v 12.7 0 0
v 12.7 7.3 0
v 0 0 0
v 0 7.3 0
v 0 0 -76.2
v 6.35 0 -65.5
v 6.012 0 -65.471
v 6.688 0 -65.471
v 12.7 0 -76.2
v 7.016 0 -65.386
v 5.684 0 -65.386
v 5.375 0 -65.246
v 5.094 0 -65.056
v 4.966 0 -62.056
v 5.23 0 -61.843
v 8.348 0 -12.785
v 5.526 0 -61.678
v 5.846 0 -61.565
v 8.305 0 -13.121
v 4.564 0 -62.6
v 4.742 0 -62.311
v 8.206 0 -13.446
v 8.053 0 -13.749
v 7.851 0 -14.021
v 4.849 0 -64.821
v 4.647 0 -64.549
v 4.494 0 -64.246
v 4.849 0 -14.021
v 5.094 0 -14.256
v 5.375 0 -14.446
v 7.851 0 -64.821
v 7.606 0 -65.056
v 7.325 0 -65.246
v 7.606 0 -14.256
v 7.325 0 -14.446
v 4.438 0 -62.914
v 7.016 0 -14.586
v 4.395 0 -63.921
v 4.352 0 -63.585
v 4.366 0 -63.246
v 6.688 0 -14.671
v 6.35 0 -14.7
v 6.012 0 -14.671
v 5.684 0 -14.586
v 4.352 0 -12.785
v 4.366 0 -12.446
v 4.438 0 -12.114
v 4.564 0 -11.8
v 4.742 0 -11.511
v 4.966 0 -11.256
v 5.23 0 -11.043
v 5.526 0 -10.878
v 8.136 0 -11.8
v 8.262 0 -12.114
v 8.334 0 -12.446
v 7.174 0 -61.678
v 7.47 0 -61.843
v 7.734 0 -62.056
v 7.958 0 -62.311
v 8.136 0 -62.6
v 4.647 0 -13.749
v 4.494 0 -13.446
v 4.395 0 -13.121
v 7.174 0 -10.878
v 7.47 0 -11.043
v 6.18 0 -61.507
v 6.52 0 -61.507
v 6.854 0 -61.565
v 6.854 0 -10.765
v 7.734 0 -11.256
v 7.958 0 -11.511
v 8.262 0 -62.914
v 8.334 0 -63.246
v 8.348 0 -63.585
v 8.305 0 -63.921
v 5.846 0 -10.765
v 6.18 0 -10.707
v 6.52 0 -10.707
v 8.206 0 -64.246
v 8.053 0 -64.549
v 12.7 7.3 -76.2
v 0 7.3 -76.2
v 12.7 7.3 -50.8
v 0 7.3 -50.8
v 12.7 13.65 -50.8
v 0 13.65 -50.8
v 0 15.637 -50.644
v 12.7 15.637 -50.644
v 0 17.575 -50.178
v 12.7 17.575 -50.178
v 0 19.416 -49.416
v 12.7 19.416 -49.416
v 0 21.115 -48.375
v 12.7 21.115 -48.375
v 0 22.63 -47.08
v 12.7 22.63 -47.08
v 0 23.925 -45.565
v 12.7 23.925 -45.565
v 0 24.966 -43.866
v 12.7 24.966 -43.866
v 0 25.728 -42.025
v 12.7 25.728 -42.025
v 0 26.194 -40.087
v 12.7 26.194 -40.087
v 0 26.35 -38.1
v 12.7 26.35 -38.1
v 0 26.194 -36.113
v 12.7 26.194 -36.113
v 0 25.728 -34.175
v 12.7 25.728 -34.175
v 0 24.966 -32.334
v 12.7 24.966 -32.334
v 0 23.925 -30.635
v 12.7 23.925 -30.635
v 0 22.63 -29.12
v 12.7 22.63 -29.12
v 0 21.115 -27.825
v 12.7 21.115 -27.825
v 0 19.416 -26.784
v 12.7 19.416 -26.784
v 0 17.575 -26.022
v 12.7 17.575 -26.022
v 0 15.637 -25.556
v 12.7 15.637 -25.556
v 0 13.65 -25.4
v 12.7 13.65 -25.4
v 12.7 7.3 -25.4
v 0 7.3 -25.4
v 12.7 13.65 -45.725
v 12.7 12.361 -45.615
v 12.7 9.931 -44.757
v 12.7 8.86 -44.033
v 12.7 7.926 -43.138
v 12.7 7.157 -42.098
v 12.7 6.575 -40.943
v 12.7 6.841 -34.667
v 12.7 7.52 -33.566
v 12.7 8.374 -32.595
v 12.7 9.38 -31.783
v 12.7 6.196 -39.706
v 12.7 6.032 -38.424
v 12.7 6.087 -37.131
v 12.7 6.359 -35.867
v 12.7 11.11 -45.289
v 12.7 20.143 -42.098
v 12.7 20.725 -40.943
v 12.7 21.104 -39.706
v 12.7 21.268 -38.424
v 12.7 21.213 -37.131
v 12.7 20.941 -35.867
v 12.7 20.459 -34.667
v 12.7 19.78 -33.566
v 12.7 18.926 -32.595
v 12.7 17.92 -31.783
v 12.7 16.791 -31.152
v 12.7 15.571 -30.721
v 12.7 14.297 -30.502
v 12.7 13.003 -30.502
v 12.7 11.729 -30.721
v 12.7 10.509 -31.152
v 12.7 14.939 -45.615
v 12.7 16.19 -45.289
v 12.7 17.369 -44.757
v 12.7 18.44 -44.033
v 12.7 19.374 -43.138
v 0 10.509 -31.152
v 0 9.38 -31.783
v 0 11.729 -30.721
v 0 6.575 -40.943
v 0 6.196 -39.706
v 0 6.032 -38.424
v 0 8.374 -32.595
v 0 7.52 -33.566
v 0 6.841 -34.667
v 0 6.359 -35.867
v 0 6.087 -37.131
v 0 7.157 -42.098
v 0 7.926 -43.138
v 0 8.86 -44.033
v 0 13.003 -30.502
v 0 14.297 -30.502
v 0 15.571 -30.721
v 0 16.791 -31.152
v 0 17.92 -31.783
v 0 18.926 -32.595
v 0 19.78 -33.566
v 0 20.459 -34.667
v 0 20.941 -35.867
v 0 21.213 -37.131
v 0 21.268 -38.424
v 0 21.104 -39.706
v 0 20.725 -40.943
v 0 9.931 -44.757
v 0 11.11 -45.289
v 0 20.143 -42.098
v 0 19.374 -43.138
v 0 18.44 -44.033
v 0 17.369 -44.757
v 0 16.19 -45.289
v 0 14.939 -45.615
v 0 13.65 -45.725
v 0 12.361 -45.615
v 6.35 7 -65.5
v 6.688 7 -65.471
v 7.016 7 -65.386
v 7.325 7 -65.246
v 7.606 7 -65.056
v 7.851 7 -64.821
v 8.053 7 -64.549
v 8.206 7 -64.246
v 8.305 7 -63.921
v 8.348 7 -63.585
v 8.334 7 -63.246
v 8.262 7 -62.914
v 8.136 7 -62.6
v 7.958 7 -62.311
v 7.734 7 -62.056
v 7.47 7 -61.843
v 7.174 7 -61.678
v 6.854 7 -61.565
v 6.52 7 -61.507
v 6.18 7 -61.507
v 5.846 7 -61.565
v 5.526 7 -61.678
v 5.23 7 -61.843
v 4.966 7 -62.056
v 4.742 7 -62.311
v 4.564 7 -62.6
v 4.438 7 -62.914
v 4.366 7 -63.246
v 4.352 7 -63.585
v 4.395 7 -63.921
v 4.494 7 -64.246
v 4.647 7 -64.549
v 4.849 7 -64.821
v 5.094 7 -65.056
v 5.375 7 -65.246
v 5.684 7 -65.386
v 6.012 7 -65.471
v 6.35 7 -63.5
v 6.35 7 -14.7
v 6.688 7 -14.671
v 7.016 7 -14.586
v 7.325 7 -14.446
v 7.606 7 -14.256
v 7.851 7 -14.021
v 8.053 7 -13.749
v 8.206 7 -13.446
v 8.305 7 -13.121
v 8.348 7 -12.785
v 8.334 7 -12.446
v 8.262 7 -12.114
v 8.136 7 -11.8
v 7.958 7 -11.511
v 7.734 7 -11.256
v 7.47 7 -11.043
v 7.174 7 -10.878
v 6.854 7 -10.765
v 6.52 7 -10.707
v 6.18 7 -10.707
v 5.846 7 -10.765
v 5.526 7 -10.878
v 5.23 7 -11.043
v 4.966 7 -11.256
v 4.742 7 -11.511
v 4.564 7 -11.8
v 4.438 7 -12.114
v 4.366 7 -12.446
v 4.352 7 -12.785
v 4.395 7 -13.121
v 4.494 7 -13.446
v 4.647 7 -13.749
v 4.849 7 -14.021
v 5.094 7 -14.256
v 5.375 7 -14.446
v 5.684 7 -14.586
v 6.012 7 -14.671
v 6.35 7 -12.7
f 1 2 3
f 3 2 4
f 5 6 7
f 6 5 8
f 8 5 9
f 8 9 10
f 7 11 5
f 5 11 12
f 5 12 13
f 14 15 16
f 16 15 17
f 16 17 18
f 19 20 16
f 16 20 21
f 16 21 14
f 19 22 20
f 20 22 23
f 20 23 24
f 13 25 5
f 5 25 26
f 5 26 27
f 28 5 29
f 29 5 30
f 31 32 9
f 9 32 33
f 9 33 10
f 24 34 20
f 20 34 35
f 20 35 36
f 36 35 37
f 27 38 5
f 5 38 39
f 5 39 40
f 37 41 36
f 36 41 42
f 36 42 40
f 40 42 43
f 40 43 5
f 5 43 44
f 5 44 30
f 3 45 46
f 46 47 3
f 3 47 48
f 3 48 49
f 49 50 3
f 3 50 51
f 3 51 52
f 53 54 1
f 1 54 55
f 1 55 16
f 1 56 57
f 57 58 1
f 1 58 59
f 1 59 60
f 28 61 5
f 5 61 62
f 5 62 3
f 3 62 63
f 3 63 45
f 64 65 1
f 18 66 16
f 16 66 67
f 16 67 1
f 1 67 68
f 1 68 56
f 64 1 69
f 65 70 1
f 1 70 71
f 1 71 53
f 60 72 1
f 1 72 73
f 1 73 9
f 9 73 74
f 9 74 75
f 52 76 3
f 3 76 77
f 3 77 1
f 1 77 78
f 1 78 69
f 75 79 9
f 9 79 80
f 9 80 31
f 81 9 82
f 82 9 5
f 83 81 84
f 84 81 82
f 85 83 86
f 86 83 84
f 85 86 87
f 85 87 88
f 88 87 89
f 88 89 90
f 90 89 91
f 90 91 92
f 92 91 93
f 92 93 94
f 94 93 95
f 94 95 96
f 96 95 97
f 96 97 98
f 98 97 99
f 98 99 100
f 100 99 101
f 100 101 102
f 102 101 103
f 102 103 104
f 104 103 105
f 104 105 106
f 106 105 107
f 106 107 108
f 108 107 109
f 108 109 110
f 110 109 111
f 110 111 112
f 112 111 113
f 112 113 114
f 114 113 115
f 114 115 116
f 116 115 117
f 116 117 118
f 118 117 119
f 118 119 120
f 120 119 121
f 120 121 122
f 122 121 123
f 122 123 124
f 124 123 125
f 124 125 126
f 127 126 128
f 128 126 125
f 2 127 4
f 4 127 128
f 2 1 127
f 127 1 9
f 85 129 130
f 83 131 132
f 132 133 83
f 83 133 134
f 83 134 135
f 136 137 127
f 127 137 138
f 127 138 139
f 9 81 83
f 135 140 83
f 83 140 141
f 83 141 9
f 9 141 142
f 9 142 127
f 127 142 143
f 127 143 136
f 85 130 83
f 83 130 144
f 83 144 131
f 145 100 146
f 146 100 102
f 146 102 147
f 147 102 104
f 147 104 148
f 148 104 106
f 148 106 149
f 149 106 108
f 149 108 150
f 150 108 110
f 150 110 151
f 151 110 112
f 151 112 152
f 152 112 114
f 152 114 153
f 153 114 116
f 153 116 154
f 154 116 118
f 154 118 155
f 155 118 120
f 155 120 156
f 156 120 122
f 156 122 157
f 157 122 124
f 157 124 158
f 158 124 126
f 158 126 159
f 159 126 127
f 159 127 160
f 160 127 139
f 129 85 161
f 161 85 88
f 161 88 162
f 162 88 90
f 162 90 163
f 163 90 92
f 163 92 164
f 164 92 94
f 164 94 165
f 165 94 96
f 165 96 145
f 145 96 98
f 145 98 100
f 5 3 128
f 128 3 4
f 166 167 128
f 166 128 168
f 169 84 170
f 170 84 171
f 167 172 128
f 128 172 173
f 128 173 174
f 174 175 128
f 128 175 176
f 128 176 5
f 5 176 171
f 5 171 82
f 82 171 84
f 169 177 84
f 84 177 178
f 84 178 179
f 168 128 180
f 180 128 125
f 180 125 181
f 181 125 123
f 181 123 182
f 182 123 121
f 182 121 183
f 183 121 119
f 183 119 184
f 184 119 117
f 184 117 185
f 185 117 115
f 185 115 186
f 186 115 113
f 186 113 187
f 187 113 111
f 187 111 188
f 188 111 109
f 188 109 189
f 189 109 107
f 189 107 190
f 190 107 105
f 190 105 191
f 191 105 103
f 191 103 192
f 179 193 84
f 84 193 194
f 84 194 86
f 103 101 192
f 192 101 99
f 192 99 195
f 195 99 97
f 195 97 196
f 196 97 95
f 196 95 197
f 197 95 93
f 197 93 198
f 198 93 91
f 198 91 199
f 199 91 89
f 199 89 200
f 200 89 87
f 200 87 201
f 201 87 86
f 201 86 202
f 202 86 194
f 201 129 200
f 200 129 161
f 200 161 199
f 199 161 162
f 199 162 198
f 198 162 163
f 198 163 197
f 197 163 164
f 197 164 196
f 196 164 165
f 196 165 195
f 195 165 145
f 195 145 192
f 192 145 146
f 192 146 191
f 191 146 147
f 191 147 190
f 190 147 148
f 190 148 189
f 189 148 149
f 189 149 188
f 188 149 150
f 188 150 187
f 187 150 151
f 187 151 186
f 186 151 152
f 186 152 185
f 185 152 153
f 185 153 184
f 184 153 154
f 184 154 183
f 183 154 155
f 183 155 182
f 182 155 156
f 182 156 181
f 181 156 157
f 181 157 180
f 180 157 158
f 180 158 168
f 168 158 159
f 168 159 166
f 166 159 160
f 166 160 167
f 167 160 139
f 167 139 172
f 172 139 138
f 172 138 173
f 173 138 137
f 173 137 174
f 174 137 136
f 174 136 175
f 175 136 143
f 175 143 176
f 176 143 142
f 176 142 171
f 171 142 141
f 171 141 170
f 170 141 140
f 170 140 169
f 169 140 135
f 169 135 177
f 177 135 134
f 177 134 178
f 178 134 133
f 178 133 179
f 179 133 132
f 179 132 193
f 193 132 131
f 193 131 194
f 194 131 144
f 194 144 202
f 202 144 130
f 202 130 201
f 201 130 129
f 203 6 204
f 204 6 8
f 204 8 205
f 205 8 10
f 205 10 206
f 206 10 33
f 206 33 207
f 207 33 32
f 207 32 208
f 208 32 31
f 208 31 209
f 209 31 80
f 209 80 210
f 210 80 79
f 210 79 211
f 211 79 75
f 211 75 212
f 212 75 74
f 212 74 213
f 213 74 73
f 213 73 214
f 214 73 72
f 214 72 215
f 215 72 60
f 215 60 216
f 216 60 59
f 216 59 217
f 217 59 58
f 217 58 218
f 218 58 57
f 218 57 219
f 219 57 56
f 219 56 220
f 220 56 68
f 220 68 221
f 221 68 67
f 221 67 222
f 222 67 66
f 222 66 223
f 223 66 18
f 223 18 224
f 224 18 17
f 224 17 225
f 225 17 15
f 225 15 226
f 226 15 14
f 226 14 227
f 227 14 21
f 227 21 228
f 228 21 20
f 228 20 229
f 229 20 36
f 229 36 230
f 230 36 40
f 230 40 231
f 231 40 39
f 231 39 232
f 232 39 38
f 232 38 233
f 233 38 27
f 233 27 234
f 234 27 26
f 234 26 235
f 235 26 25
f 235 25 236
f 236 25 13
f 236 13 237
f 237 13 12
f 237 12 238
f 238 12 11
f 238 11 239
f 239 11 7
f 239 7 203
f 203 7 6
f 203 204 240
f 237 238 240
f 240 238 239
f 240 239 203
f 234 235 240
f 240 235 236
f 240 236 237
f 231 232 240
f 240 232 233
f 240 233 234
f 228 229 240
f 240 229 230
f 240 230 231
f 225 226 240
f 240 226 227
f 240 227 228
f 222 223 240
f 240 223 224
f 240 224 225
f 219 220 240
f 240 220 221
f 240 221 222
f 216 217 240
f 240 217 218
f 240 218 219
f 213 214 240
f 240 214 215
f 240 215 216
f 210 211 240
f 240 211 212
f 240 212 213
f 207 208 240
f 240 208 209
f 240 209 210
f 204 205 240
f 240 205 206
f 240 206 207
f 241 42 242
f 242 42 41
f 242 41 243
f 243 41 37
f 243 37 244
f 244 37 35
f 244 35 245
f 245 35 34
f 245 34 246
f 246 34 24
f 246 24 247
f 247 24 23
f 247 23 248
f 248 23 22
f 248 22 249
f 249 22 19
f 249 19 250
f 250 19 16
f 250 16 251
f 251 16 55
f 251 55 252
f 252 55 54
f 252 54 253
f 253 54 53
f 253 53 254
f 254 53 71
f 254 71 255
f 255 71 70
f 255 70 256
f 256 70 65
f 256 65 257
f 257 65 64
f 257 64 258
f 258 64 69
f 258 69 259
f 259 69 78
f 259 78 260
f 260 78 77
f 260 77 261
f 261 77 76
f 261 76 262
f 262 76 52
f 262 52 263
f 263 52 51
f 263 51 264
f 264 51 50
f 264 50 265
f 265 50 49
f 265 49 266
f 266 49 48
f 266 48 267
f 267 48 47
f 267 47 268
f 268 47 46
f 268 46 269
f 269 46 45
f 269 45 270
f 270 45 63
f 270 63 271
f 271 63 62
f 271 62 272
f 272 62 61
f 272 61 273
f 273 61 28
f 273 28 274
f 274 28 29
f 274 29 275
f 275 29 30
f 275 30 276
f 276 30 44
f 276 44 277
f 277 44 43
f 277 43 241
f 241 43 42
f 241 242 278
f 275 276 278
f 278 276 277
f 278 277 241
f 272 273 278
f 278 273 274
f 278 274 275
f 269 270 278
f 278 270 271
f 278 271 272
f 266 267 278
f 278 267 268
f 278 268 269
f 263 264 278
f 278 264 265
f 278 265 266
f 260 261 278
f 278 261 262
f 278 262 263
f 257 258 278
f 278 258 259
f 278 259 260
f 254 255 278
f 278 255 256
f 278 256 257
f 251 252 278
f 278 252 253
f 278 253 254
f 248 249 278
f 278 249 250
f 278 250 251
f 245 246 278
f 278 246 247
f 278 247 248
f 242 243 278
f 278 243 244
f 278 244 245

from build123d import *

# Parameters (mm, degrees)
BOSS_EXTRUDE1_DEPTH = 12.7
SKETCH2_R           = 7.62500004
CUT_EXTRUDE1_DEPTH  = 82.621397317
SKETCH3_R           = 2
CUT_EXTRUDE2_DEPTH  = 7


with BuildPart() as part:
    # Sketch1 → Boss-Extrude1 (new body)
    with BuildSketch(Plane(origin=(0, 0, 0), x_dir=(0, 0, -1), z_dir=(1, 0, 0))):
        with BuildLine():
            Line((0, 0), (76.2, 0))
            Line((76.2, 0), (76.2, 7.3))
            Line((76.2, 7.3), (50.8, 7.3))
            Line((50.8, 7.3), (50.8, 13.65))
            ThreePointArc((50.8, 13.65), (38.1, 26.35), (25.4, 13.65))
            Line((25.4, 13.65), (25.4, 7.3))
            Line((25.4, 7.3), (0, 7.3))
            Line((0, 7.3), (0, 0))
        make_face()
    extrude(amount=BOSS_EXTRUDE1_DEPTH)

    # Sketch2 → Cut-Extrude1 (cut, through all)
    with BuildSketch(Plane(origin=(12.7, 0, 0), x_dir=(0, 0, -1), z_dir=(1, 0, 0))):
        with Locations((38.1, 13.65)):
            Circle(SKETCH2_R)
    extrude(amount=-CUT_EXTRUDE1_DEPTH, mode=Mode.SUBTRACT)

    # Sketch3 → Cut-Extrude2 (cut)
    with BuildSketch(Plane.XZ):
        with Locations(Location((6.35, -12.7, 0), (0, 0, 270))):
            Circle(SKETCH3_R)
        with Locations(Location((6.35, -63.5, 0), (0, 0, 270))):
            Circle(SKETCH3_R)
    extrude(amount=-CUT_EXTRUDE2_DEPTH, mode=Mode.SUBTRACT)


solid = part.part
